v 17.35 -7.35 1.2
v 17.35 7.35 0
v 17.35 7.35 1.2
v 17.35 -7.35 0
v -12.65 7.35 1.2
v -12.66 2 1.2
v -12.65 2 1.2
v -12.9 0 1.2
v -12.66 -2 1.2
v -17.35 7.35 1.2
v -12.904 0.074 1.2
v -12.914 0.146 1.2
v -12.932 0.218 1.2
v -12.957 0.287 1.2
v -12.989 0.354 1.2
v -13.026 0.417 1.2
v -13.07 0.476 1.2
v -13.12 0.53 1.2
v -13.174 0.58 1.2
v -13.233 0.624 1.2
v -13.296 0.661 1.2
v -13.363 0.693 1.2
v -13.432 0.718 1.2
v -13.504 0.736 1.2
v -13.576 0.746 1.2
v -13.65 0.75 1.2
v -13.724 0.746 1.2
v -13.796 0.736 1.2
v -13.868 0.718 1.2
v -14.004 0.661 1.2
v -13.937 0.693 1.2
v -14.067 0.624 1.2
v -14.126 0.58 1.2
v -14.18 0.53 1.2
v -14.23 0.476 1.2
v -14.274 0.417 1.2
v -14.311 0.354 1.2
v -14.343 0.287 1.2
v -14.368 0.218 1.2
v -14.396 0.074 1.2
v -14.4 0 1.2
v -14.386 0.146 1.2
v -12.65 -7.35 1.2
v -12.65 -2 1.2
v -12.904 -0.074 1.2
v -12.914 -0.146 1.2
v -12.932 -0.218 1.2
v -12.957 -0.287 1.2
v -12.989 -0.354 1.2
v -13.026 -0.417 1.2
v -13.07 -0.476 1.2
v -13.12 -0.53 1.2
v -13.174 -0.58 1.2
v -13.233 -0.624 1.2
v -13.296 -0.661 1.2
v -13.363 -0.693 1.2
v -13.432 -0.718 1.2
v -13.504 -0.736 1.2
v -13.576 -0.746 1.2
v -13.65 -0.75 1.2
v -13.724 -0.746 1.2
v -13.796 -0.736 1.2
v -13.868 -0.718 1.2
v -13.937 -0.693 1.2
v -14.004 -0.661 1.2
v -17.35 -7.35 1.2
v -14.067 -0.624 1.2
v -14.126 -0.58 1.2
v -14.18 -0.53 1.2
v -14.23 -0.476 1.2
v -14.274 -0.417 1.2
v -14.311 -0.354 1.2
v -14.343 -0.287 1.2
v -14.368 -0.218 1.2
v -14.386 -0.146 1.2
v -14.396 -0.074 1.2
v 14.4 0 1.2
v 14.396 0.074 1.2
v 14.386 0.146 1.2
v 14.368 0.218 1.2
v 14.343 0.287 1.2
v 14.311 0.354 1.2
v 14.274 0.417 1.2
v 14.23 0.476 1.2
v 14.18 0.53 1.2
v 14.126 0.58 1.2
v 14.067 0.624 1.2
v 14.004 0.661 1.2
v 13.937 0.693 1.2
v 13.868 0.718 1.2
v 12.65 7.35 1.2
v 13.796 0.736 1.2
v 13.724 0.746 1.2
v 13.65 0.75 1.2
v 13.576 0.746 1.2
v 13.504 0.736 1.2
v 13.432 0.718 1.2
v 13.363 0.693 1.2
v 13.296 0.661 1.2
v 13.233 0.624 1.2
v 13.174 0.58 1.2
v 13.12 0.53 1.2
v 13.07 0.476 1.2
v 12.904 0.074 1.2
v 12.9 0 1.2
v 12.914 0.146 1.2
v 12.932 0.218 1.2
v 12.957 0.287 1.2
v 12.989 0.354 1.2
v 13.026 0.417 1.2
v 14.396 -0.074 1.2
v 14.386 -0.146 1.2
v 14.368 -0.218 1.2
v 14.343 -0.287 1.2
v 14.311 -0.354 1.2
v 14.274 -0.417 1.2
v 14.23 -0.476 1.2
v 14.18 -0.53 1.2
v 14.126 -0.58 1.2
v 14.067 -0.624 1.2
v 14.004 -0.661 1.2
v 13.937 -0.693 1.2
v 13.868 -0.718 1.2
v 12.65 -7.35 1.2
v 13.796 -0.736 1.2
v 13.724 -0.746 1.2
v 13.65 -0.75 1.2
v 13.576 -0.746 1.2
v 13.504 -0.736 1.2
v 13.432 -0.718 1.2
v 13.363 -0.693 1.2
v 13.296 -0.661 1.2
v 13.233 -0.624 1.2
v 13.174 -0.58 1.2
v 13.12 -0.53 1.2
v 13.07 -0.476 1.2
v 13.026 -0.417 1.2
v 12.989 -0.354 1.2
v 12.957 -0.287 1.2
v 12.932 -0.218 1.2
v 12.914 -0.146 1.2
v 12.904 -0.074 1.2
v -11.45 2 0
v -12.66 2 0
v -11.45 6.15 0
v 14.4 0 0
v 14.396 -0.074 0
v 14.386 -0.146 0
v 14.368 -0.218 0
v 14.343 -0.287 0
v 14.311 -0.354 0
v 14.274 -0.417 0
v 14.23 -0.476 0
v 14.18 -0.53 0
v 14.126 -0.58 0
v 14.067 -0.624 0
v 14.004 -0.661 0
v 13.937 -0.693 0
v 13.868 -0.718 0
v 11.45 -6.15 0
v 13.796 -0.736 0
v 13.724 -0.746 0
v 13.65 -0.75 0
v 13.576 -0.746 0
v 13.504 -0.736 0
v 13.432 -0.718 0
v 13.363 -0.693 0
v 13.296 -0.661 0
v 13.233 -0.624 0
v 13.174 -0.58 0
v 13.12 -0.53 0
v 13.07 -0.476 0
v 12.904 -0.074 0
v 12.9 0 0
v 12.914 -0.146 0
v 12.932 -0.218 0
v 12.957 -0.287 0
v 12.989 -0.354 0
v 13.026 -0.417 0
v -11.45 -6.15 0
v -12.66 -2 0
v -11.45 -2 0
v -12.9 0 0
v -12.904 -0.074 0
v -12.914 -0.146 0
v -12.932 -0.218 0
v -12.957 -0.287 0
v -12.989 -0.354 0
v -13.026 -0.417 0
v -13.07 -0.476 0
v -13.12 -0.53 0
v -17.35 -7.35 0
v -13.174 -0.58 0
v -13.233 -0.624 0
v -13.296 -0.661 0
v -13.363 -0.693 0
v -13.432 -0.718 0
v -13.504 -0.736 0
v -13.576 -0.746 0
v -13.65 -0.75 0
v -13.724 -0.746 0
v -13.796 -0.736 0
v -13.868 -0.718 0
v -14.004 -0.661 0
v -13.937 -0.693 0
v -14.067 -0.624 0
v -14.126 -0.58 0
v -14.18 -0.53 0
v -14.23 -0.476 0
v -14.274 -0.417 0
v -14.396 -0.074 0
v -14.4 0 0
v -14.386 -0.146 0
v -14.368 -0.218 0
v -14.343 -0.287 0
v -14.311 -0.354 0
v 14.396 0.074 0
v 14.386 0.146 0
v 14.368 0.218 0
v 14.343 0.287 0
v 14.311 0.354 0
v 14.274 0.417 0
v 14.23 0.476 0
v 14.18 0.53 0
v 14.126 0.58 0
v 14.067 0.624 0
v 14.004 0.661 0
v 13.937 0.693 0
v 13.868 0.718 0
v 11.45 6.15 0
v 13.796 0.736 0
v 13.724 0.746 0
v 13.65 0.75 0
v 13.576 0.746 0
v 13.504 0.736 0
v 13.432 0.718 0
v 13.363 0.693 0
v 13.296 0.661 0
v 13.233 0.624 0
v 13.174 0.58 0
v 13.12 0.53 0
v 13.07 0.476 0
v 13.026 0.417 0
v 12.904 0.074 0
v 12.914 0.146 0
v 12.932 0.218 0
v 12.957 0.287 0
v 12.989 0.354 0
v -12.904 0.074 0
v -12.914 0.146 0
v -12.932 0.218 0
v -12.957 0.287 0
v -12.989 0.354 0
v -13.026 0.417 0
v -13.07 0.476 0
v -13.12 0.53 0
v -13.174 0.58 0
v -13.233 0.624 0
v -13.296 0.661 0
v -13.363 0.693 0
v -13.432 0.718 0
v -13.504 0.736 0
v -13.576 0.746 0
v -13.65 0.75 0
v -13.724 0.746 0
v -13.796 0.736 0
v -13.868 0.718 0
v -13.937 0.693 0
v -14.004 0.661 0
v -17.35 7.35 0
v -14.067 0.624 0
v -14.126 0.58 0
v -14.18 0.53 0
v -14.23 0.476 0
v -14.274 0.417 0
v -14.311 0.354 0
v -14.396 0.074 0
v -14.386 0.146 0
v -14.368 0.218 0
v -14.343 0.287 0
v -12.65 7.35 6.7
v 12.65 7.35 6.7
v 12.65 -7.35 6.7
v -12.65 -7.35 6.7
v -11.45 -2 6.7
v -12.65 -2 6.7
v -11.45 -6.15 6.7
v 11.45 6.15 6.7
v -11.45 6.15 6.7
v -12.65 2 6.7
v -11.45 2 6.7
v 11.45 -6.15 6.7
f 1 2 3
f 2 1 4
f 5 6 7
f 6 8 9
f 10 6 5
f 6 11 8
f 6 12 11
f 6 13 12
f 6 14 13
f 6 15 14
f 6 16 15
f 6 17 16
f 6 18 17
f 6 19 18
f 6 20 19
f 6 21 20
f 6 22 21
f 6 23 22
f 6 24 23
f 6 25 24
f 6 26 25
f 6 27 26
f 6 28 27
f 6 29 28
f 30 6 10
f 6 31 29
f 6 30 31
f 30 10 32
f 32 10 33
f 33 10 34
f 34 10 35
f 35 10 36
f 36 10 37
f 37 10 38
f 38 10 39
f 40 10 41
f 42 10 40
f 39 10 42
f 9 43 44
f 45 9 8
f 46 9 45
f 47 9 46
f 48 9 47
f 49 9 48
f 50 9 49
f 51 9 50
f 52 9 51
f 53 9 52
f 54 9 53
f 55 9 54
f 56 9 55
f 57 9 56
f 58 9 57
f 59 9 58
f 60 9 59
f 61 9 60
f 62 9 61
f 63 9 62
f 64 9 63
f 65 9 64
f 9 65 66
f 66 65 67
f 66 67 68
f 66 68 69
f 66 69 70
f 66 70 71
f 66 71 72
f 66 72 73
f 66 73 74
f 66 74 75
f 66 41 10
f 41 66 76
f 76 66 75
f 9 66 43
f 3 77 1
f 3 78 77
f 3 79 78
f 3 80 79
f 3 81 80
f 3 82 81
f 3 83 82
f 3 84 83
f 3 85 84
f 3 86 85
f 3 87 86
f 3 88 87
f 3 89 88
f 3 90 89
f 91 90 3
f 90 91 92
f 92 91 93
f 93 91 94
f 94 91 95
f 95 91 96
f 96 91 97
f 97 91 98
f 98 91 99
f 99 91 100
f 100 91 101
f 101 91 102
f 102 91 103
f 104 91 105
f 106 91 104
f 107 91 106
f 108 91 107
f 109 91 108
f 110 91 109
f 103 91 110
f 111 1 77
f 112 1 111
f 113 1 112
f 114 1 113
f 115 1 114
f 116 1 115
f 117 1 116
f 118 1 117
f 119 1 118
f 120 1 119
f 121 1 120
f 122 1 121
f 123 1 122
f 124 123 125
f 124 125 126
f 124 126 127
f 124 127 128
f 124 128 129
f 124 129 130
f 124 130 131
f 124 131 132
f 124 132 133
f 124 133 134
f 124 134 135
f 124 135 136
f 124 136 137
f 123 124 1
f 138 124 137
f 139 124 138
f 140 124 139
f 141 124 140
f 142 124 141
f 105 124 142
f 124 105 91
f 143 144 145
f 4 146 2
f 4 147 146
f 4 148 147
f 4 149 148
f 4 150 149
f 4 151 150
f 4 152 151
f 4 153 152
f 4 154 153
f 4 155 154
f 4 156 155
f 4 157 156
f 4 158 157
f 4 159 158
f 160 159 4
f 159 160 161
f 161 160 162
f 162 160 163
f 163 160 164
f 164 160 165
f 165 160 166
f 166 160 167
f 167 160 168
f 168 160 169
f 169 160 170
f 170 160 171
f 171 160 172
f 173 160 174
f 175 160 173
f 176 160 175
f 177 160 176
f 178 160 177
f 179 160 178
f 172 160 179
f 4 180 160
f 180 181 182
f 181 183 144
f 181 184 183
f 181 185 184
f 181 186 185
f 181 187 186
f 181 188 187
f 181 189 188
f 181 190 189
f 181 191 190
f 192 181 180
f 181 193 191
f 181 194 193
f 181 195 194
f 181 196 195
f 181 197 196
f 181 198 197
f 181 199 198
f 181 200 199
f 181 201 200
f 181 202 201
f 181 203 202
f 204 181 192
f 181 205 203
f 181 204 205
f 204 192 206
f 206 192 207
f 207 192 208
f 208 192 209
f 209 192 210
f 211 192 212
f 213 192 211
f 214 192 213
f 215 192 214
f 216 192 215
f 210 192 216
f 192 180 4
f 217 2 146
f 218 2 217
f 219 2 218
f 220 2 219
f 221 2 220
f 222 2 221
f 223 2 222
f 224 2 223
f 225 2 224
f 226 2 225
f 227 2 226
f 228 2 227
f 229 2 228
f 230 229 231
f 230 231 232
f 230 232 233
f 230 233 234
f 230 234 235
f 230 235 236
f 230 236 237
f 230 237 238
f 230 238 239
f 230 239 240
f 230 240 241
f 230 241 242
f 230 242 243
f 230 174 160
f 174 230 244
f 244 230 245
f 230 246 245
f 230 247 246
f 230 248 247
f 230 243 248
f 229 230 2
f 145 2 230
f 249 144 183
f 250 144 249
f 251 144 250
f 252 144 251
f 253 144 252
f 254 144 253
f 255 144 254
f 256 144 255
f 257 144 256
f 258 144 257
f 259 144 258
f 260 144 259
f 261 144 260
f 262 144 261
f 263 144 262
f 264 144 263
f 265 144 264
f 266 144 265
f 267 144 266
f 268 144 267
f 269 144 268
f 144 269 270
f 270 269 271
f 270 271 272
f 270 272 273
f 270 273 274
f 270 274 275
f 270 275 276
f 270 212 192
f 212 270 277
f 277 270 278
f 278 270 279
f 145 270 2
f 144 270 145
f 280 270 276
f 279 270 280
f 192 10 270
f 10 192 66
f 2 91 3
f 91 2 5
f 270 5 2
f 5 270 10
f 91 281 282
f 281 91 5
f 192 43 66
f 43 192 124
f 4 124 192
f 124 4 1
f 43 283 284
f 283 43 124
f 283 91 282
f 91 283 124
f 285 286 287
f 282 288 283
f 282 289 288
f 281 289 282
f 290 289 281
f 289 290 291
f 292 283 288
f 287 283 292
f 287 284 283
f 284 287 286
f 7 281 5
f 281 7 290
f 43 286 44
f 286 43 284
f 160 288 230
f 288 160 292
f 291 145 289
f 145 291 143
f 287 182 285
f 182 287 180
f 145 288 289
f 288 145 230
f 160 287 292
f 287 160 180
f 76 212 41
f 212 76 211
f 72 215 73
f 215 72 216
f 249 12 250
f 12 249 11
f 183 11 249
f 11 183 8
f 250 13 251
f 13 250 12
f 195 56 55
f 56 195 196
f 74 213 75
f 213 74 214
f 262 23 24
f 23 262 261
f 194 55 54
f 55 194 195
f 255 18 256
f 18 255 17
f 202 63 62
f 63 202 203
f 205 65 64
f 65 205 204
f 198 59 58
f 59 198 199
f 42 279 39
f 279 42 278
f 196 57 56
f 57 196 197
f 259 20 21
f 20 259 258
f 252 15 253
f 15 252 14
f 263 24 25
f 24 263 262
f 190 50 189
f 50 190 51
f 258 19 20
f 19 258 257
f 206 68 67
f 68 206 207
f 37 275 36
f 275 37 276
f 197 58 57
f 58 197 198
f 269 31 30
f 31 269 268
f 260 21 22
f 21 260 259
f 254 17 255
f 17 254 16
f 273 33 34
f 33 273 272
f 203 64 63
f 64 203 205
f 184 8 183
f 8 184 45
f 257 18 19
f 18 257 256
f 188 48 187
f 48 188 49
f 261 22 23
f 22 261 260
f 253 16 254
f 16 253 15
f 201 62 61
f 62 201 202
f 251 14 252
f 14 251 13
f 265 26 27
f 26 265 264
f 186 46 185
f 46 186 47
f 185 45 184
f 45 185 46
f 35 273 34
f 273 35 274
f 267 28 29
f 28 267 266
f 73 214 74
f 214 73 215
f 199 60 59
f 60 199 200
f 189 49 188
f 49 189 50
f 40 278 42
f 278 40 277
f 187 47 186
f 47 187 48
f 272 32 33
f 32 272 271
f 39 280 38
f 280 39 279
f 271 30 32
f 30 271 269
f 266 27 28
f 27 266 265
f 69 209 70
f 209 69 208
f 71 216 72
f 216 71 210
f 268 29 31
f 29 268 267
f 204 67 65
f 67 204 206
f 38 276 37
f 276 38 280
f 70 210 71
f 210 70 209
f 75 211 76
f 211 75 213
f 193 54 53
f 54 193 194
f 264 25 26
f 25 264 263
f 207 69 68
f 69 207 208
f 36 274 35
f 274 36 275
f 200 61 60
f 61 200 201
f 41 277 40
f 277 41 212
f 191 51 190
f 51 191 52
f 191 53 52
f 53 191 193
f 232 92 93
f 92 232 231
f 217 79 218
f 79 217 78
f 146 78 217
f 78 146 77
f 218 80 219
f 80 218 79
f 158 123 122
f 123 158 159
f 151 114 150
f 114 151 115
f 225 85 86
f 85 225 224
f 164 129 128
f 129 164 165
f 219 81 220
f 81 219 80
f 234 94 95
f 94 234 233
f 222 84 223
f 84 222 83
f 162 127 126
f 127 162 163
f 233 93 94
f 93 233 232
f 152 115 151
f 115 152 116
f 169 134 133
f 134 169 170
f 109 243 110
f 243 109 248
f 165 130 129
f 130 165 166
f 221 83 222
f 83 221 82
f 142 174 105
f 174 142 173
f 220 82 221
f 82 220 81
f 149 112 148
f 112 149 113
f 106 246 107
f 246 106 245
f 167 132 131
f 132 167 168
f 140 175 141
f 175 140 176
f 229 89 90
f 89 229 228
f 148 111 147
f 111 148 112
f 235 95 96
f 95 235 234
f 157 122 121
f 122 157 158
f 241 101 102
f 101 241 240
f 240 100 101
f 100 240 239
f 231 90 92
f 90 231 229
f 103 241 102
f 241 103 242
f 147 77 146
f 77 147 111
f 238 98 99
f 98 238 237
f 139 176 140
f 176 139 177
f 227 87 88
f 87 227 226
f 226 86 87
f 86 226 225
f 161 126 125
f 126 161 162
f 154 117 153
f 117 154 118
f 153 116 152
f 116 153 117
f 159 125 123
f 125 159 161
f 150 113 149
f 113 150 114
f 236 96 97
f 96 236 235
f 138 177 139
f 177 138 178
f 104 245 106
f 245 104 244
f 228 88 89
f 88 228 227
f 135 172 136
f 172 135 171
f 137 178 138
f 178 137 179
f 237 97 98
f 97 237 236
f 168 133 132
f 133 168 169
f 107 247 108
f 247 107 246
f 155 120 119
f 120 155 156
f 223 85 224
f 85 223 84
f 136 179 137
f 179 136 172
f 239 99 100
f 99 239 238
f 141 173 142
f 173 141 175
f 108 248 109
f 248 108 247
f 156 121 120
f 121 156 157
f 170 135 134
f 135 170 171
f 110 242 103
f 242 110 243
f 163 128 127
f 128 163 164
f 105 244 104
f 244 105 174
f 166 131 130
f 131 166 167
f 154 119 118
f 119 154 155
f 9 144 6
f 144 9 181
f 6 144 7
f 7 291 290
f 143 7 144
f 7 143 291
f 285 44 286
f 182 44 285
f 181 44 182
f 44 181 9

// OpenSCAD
// file: ../servo_data.scad
SERVO_LENGTH = 1;
SERVO_WIDTH = 2;
SERVO_HEIGHT = 3;
SERVO_TAB_LENGTH = 4;
SERVO_TAB_WIDTH = 5;
SERVO_TAB_THICKNESS = 6;
SERVO_TAB_HEIGHT = 7;
SERVO_MOUNTING_HOLE_OFFSET = 8;
SERVO_MOUNTING_HOLE_DIAMETER = 9;
SERVO_BEARING_CASE_DIAMETER = 10;
SERVO_BEARING_CASE_HEIGHT = 11;
SERVO_GEAR_CASE_DIAMETER = 12;
SERVO_SPLINE_OUTER_DIAMETER = 13;
SERVO_SPLINE_HEIGHT = 14;
SERVO_SPLINE_TEETH = 15;
SERVO_SPLINE_SCREW_DIAMETER = 16;
SERVO_WIRE_THICKNESS = 17;
SERVO_WIRE_OFFSET = 18;

SERVOS = 
[["9180MG", 23.5, 12, 21.0, 32.5, 11, 1.7, 16.5, 1.2, 2, 12, 3.8, 6.0,
  3.7, 3.2, 25, 2.0, 1.0, 0],
 ["MG90S", 22.5, 12, 22.5, 32.5, 12, 2.5, 18.0, 1.2, 2, 12, 6.0, 6.0, 4.8,
  4.1, 20, 2.5, 1.2, 4]];

function search_servos(key) = SERVOS[search([key], SERVOS)[0]];
// file: ../globals.scad
$fn = 64;

// The tolerance of your 3d printer that results in a "tight fit" of two parts.
tolerance = 0.1;

// A small value to be used to offset unions and differences to avoid "z-fighting"
epsilon = 0.001;
// file: ../shapes.scad
// The xy_ variants of shape modules are centered with respect to the X/Y axes and "sit" on te XY plane.

module xy_cube(width, depth, height) {
    translate([0, 0, height / 2])
    cube([width, depth, height], center=true);
}

module xy_cylinder(
    h,
    r, r1, r2,
    d, d1, d2)
{
    translate([0, 0, h / 2])
    cylinder(h=h, r=r, r1=r1, r2=r2, d=d, d1=d1, d2=d2, center=true);
}

// Spreads out its children, spacing them along the x/y/z axis by the given amount.
module spread(x, y, z) {
    for(i = [0 : $children -1 ]) {
        translate([i*x, i*y, i*z])
        children(i);
    }
}

spread(15, 0, 0) {
    xy_cube(10, 10, 10);
    xy_cylinder(10, d=10);
}
// file: ../servos.scad
use <mcad/involute_gears.scad>
use <shapes.scad>

include <globals.scad>
include <servo_data.scad>


module servo_body(data) {
    length = data[SERVO_LENGTH];
    width = data[SERVO_WIDTH];
    height = data[SERVO_HEIGHT];
       
    xy_cube(width, length, height);
}

// Translates (and copies) children to the bottom of the two mounting tab holes relative to the tab location.
module servo_mounting_holes_location(data) {
    length = data[SERVO_TAB_LENGTH];
    height = data[SERVO_TAB_THICKNESS];
    
    hole_radius = data[SERVO_MOUNTING_HOLE_DIAMETER] / 2;
    hole_offset = data[SERVO_MOUNTING_HOLE_OFFSET];
    
    hole_position = (length / 2) - (hole_offset + hole_radius);
    
    for(y = [-1, 1]) {
        translate([0, y * hole_position, 0]) {
            xy_cylinder(h=height + (2 * epsilon), r=hole_radius);
            
            translate([0, 0, height - epsilon])
            children();
        }
    }
}

module servo_mounting_holes(data) {    
    translate([0, 0, -epsilon])
    servo_mounting_holes_location(data) {
        xy_cylinder(
            h=data[SERVO_TAB_THICKNESS] + (2 * epsilon),
            d=data[SERVO_MOUNTING_HOLE_DIAMETER]
        );
        children();
    }
}

// Translates the module's children to the location of the servo tab.
module servo_tab_location(data) {
    translate([0, 0, data[SERVO_TAB_HEIGHT]])
    children();
}

module servo_tab(data, mounting_holes=true) {
    length = data[SERVO_TAB_LENGTH];
    width = data[SERVO_TAB_WIDTH];
    thickness = data[SERVO_TAB_THICKNESS];
           
    difference() {
        xy_cube(width, length, thickness);
        if(mounting_holes) {
            servo_mounting_holes(data);
        }
    }
}

// Returns the x, y, z location of the center bottom of the bearing case.
function servo_bearing_case_position(data) = [
    0,
    (data[SERVO_LENGTH] - data[SERVO_BEARING_CASE_DIAMETER]) / 2,
    data[SERVO_HEIGHT] - epsilon
];

// Returns the x, y, z size of the "bearing case" which is at the top of a servo.
function servo_bearing_case_size(data) = [
    data[SERVO_BEARING_CASE_DIAMETER],
    data[SERVO_BEARING_CASE_DIAMETER] + (data[SERVO_GEAR_CASE_DIAMETER] / 2),
    data[SERVO_BEARING_CASE_HEIGHT]
];

module servo_bearing_case_location(data) {
    translate(servo_bearing_case_position(data))
    children();
}

module servo_bearing_case(data) {
    bearing_case_diameter = data[SERVO_BEARING_CASE_DIAMETER];
    bearing_case_height = data[SERVO_BEARING_CASE_HEIGHT];
    gear_case_diameter = data[SERVO_GEAR_CASE_DIAMETER];
    
    xy_cylinder(h = bearing_case_height, r = bearing_case_diameter / 2);
        
    translate([0, -bearing_case_diameter / 2, 0])
    xy_cylinder(h = bearing_case_height, r = gear_case_diameter / 2);
}


// Returns the x, y, z location of the bottom of the spline.
function servo_spline_position(data) = servo_bearing_case_position(data) + [
    0,
    0,
    data[SERVO_BEARING_CASE_HEIGHT] - epsilon
];

module servo_spline_location(data) {
    translate(servo_spline_position(data))
    children();
}

module servo_spline(data) {     
    diameter = data[SERVO_SPLINE_OUTER_DIAMETER];
    height = data[SERVO_SPLINE_HEIGHT];
    teeth = data[SERVO_SPLINE_TEETH];
    
    gear(
        diametral_pitch = teeth / diameter,
        number_of_teeth = teeth,
        gear_thickness = height,
        hub_thickness = height,
        rim_thickness = height,
        bore_diameter = 0,
        clearance = 0,
        pressure_angle=35
    );
}   

module servo(data) {
    echo("Servo Data:", data);
    
    servo_body(data);
    
    servo_tab_location(data)
    servo_tab(data);
    
    servo_bearing_case_location(data)
    servo_bearing_case(data);
    
    servo_spline_location(data)
    servo_spline(data);
}

// Creates a servo horn, with children positioned on the top.  It is designed to print upside down.
module servo_horn(
    data,
    wall_thickness=1,
    shaft_height=undef,
    screwhead_diameter=undef,
) {
    spline_diameter = data[SERVO_SPLINE_OUTER_DIAMETER];
    diameter = spline_diameter + (wall_thickness * 2);
    
    screw_diameter = data[SERVO_SPLINE_SCREW_DIAMETER];
    bore_diameter = screwhead_diameter == undef ? spline_diameter : screwhead_diameter;

    spline_height = data[SERVO_SPLINE_HEIGHT];
    height = shaft_height == undef ? spline_height + wall_thickness: shaft_height;
    
    // 45 degree transition so can print without overhangs.
    transition_height = (bore_diameter - screw_diameter) / 2;
    
    difference() {
        union() {
            xy_cylinder(h=height, d=diameter);
            translate([0, 0, height - epsilon])
            children();
        }
        
        translate([0, 0, -epsilon]) {
            xy_cylinder(h=height + (epsilon*2), d=screw_diameter);
            servo_spline(data);
            
            translate([0, 0, spline_height])
            xy_cylinder(h=transition_height, d1=screw_diameter, d2=bore_diameter);
            
            translate([0, 0, spline_height + transition_height - epsilon])
            xy_cylinder(h=4000, d=bore_diameter);
        }
    }
    
    
}

module servo_demo(servo_name) {
    data = search_servos(servo_name);
    
    servo(data);
    
    servo_spline_location(data) {
        translate([0, 0, 5])
        servo_horn(data) {
            xy_cylinder(d=15, h=1.5);
        }
    }
    
    translate([20, 0, 0])        
    rotate([0, 0, 90])
    text(data[0], halign="center");       
}

servo_demo("9180MG");    
// file: servo_mounts.scad
use <../servos.scad>

$fn = 64;

// Extra added to servo dimensions to account for printer tolerances
tolerance = 0.1;

// Small fudge factor to fix z-fighting in the render
epsilon = 0.01;

module servo_mount(
    servo_length,
    servo_width,
    tab_size,
    wall_thickness = 1.2,
    foam_thickness = 5.5,
    mounting_hole_diameter = 1.5,
    mounting_hole_distance = 1.0,
    wire_width = 4.0
) {
    servo_length = servo_length + tolerance;
    servo_width = servo_width + tolerance;
    
    wall_length = servo_length + (2 * wall_thickness);
    wall_width = servo_width + (2 * wall_thickness);
    
    total_length = wall_length + (2 * tab_size);
   
    translate([-wall_length / 2, -wall_width / 2, 0])
    difference() {
        union() {
            translate([-tab_size, 0, 0])
            cube([total_length, wall_width, wall_thickness]);
            translate([0, 0, wall_thickness])
            cube([wall_length, wall_width, foam_thickness]);
        }
        
        // hole for the servo to go in
        translate([wall_thickness, wall_thickness, -1])
        cube([servo_length, servo_width, 40]);
       
        // mounting holes
        translate([-mounting_hole_distance, wall_width / 2, -1])
        cylinder(h = 40, r = mounting_hole_diameter / 2);
        translate([wall_length + mounting_hole_distance, wall_width / 2, -1])
        cylinder(h = 40, r = mounting_hole_diameter / 2);
        
        // slot for wire
        translate([-epsilon, (wall_width - wire_width) / 2, -epsilon])
        cube([wall_thickness + (2*epsilon), wire_width, foam_thickness + wall_thickness + (2 * epsilon)]);
    }
}

module demo() {
    color("red")
    mg90();
    
    translate([5.5, 0, 16])
    mirror([0, 0, 1])
    servo_mount(servo_length=22.8, servo_width=12.2, tab_size=4.7);
}

demo();
// main file
use <servo_mounts.scad>

servo_mount(servo_length=22.8, servo_width=12.2, tab_size=4.7);
